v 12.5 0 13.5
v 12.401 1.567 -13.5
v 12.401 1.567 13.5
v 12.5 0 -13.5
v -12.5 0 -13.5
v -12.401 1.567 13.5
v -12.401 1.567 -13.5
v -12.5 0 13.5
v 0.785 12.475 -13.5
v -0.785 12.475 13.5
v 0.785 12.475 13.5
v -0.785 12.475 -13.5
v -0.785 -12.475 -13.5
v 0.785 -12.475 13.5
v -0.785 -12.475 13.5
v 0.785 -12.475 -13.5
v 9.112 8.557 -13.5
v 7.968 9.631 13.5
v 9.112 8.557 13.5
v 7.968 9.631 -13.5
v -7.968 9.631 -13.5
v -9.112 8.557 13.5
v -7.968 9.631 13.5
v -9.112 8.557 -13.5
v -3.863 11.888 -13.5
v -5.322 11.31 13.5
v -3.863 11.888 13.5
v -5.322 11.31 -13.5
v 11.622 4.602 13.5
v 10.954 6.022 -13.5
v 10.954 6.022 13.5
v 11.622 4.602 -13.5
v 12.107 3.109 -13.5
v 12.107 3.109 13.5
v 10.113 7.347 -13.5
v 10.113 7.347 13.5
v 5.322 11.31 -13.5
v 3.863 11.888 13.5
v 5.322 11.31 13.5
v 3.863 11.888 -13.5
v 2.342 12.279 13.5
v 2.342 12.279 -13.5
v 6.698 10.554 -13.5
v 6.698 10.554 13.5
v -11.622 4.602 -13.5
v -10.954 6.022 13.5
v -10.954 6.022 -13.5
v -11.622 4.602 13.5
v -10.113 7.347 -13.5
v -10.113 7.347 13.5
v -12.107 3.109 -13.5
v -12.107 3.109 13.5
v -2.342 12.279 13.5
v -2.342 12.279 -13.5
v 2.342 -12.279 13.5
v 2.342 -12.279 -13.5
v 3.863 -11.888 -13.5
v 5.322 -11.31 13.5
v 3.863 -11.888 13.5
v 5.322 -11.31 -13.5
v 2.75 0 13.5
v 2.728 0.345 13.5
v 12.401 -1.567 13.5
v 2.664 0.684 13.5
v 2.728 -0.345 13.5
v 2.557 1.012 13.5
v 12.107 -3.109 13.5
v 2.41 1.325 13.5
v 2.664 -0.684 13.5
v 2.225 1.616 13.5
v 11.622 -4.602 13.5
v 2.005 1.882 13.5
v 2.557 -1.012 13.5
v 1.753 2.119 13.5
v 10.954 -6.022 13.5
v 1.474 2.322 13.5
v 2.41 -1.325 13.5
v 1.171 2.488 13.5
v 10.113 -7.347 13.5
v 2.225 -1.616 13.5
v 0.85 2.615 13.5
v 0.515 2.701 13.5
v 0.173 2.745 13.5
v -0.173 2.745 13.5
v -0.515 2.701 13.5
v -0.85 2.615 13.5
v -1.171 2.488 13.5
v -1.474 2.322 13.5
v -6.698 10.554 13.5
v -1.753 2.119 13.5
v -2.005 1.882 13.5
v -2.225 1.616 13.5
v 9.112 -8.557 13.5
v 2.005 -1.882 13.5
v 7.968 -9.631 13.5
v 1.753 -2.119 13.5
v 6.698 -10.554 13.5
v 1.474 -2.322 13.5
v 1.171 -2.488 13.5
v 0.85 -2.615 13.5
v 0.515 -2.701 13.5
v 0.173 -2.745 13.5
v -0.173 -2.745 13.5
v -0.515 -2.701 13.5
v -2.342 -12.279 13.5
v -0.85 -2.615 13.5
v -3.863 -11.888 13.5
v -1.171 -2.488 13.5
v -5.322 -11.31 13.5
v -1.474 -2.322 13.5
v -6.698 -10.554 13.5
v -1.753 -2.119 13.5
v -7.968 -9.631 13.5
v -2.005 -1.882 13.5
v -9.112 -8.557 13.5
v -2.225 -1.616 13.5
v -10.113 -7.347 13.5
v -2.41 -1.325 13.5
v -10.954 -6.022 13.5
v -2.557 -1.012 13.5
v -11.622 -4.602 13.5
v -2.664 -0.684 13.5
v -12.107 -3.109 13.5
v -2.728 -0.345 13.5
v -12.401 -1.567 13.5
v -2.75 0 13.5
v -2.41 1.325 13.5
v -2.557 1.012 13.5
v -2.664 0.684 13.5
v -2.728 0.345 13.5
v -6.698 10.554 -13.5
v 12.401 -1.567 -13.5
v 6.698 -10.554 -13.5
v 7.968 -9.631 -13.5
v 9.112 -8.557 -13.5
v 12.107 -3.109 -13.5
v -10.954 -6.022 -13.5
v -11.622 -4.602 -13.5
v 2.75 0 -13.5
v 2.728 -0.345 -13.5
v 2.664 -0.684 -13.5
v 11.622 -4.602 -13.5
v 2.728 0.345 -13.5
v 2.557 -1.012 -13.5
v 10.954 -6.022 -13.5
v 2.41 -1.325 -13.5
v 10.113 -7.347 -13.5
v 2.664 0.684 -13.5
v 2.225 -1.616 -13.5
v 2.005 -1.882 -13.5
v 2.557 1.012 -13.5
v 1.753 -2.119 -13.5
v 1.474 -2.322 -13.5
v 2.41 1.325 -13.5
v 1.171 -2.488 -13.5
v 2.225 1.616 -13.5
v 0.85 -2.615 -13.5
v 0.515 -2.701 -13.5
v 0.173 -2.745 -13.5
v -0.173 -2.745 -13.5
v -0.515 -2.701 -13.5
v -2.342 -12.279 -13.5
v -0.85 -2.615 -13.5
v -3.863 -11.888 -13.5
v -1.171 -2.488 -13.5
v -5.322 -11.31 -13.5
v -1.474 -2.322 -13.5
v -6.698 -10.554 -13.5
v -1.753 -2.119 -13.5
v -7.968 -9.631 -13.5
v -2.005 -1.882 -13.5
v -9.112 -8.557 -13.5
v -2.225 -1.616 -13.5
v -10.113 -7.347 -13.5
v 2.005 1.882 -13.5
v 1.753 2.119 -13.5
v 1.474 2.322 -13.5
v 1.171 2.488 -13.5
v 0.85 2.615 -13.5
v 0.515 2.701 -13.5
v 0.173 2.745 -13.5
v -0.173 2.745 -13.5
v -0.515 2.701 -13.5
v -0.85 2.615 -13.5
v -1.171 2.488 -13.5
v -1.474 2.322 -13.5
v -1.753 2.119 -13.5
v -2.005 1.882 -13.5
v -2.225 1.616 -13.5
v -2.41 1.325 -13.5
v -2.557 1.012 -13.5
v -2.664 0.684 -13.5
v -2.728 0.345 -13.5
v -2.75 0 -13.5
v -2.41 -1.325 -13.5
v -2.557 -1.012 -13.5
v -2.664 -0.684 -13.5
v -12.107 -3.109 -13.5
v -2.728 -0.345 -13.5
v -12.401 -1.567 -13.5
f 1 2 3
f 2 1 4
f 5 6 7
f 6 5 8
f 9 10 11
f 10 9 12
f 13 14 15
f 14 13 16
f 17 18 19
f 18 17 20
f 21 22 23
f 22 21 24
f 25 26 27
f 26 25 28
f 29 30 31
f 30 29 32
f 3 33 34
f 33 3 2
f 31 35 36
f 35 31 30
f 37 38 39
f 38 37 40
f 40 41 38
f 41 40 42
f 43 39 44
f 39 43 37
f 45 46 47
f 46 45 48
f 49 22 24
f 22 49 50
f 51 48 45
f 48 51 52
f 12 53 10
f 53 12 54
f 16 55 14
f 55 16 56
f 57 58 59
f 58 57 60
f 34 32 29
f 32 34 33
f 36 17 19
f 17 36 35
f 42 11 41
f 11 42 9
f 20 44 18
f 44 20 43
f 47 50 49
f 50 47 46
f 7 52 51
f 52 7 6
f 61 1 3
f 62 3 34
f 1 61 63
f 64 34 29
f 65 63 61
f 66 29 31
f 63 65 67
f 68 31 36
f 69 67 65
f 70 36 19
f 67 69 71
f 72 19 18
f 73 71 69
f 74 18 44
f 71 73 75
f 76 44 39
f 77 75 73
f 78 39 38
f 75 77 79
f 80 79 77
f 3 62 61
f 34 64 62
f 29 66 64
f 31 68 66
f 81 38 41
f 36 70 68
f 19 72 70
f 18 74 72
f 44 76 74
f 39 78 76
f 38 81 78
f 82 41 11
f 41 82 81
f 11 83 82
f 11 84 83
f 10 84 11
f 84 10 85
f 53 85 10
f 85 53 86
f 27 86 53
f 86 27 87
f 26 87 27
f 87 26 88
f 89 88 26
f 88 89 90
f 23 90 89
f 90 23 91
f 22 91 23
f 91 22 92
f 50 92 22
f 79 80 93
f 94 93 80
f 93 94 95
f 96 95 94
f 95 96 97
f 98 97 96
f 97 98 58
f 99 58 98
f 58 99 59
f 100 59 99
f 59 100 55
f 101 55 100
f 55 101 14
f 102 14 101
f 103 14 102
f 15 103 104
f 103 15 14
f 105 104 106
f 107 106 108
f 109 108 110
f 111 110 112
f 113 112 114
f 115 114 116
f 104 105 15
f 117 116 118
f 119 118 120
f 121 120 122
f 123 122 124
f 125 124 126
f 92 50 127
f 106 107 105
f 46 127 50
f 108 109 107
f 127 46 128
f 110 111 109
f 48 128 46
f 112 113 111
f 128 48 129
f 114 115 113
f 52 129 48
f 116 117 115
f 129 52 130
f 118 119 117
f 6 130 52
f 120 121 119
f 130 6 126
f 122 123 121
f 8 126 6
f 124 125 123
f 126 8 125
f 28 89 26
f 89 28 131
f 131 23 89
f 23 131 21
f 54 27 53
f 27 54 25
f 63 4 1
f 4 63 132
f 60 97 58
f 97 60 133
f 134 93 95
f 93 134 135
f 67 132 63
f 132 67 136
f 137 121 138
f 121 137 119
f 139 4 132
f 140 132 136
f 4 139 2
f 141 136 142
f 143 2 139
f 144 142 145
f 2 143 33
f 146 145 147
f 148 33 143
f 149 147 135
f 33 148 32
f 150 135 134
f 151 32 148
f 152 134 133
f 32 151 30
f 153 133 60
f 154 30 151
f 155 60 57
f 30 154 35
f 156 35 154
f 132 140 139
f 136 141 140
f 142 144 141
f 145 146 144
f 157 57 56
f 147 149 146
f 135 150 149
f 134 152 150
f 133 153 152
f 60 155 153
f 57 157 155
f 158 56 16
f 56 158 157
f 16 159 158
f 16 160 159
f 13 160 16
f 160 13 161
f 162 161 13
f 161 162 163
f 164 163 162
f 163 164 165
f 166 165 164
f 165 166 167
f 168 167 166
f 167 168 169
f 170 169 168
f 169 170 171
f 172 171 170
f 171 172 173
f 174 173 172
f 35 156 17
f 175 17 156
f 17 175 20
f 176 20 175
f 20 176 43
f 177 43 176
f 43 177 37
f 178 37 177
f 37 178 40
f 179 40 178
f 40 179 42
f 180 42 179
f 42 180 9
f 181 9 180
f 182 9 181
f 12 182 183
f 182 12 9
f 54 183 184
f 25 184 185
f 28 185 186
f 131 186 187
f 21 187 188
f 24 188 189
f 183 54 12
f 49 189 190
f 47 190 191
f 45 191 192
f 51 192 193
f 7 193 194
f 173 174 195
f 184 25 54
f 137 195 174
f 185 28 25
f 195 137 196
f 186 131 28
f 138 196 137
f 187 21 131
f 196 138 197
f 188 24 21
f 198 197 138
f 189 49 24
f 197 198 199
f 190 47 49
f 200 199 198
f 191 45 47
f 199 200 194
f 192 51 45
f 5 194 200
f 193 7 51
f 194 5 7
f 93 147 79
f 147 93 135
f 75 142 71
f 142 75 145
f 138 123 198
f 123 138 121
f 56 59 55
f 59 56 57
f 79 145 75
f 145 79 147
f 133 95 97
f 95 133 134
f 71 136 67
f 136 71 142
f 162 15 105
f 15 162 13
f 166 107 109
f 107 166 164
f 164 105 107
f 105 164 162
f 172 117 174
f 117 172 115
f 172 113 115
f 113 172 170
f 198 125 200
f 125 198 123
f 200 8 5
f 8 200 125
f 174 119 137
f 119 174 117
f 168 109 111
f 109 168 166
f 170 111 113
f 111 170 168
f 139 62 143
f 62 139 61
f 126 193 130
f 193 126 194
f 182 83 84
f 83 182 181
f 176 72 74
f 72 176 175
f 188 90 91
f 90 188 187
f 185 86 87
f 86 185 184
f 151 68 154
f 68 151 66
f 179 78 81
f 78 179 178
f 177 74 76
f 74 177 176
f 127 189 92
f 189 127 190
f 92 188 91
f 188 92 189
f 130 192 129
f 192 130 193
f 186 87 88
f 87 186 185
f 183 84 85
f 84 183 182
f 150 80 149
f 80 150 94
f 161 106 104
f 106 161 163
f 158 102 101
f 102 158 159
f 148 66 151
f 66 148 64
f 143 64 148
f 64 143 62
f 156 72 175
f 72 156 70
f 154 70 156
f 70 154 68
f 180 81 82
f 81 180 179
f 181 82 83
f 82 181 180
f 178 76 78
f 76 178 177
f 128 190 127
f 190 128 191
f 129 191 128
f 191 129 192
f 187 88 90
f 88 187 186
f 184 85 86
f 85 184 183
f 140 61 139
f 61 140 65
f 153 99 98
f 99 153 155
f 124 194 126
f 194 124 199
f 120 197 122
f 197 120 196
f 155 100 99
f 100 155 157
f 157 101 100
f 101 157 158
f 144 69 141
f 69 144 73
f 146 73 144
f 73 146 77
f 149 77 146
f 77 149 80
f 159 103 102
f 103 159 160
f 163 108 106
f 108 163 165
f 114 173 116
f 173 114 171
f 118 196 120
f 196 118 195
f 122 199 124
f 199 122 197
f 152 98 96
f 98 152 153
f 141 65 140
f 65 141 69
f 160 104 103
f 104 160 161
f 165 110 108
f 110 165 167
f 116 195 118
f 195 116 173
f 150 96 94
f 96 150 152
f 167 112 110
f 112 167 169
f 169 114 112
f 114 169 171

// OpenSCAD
$fn = 50;


difference() {
	union() {
		translate(v = [0, 0, -13.5000000000]) {
			cylinder(h = 27, r = 12.5000000000);
		}
	}
	union() {
		translate(v = [0, 0, -100.0000000000]) {
			cylinder(h = 200, r = 2.7500000000);
		}
	}
}
